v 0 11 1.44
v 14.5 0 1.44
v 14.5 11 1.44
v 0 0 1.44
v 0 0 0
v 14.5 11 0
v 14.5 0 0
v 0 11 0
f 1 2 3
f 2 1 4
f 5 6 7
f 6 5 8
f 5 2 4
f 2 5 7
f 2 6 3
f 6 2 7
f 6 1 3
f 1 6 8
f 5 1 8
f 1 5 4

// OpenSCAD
/* Warning, this is a very basic generator with a lot of approximation 
input data : [LFBGA, LLC, 14.5x11x1.44mm, 325, , B, C04-25656B]
generated by com.zoubworld.electronics.cad.model3d.Basic
Date : Sun Feb 15 10:50:49 CET 2026
*/

//body
color("black")
translate([0,0,0])
cube([14.5,11.0,1.44], center=false);
